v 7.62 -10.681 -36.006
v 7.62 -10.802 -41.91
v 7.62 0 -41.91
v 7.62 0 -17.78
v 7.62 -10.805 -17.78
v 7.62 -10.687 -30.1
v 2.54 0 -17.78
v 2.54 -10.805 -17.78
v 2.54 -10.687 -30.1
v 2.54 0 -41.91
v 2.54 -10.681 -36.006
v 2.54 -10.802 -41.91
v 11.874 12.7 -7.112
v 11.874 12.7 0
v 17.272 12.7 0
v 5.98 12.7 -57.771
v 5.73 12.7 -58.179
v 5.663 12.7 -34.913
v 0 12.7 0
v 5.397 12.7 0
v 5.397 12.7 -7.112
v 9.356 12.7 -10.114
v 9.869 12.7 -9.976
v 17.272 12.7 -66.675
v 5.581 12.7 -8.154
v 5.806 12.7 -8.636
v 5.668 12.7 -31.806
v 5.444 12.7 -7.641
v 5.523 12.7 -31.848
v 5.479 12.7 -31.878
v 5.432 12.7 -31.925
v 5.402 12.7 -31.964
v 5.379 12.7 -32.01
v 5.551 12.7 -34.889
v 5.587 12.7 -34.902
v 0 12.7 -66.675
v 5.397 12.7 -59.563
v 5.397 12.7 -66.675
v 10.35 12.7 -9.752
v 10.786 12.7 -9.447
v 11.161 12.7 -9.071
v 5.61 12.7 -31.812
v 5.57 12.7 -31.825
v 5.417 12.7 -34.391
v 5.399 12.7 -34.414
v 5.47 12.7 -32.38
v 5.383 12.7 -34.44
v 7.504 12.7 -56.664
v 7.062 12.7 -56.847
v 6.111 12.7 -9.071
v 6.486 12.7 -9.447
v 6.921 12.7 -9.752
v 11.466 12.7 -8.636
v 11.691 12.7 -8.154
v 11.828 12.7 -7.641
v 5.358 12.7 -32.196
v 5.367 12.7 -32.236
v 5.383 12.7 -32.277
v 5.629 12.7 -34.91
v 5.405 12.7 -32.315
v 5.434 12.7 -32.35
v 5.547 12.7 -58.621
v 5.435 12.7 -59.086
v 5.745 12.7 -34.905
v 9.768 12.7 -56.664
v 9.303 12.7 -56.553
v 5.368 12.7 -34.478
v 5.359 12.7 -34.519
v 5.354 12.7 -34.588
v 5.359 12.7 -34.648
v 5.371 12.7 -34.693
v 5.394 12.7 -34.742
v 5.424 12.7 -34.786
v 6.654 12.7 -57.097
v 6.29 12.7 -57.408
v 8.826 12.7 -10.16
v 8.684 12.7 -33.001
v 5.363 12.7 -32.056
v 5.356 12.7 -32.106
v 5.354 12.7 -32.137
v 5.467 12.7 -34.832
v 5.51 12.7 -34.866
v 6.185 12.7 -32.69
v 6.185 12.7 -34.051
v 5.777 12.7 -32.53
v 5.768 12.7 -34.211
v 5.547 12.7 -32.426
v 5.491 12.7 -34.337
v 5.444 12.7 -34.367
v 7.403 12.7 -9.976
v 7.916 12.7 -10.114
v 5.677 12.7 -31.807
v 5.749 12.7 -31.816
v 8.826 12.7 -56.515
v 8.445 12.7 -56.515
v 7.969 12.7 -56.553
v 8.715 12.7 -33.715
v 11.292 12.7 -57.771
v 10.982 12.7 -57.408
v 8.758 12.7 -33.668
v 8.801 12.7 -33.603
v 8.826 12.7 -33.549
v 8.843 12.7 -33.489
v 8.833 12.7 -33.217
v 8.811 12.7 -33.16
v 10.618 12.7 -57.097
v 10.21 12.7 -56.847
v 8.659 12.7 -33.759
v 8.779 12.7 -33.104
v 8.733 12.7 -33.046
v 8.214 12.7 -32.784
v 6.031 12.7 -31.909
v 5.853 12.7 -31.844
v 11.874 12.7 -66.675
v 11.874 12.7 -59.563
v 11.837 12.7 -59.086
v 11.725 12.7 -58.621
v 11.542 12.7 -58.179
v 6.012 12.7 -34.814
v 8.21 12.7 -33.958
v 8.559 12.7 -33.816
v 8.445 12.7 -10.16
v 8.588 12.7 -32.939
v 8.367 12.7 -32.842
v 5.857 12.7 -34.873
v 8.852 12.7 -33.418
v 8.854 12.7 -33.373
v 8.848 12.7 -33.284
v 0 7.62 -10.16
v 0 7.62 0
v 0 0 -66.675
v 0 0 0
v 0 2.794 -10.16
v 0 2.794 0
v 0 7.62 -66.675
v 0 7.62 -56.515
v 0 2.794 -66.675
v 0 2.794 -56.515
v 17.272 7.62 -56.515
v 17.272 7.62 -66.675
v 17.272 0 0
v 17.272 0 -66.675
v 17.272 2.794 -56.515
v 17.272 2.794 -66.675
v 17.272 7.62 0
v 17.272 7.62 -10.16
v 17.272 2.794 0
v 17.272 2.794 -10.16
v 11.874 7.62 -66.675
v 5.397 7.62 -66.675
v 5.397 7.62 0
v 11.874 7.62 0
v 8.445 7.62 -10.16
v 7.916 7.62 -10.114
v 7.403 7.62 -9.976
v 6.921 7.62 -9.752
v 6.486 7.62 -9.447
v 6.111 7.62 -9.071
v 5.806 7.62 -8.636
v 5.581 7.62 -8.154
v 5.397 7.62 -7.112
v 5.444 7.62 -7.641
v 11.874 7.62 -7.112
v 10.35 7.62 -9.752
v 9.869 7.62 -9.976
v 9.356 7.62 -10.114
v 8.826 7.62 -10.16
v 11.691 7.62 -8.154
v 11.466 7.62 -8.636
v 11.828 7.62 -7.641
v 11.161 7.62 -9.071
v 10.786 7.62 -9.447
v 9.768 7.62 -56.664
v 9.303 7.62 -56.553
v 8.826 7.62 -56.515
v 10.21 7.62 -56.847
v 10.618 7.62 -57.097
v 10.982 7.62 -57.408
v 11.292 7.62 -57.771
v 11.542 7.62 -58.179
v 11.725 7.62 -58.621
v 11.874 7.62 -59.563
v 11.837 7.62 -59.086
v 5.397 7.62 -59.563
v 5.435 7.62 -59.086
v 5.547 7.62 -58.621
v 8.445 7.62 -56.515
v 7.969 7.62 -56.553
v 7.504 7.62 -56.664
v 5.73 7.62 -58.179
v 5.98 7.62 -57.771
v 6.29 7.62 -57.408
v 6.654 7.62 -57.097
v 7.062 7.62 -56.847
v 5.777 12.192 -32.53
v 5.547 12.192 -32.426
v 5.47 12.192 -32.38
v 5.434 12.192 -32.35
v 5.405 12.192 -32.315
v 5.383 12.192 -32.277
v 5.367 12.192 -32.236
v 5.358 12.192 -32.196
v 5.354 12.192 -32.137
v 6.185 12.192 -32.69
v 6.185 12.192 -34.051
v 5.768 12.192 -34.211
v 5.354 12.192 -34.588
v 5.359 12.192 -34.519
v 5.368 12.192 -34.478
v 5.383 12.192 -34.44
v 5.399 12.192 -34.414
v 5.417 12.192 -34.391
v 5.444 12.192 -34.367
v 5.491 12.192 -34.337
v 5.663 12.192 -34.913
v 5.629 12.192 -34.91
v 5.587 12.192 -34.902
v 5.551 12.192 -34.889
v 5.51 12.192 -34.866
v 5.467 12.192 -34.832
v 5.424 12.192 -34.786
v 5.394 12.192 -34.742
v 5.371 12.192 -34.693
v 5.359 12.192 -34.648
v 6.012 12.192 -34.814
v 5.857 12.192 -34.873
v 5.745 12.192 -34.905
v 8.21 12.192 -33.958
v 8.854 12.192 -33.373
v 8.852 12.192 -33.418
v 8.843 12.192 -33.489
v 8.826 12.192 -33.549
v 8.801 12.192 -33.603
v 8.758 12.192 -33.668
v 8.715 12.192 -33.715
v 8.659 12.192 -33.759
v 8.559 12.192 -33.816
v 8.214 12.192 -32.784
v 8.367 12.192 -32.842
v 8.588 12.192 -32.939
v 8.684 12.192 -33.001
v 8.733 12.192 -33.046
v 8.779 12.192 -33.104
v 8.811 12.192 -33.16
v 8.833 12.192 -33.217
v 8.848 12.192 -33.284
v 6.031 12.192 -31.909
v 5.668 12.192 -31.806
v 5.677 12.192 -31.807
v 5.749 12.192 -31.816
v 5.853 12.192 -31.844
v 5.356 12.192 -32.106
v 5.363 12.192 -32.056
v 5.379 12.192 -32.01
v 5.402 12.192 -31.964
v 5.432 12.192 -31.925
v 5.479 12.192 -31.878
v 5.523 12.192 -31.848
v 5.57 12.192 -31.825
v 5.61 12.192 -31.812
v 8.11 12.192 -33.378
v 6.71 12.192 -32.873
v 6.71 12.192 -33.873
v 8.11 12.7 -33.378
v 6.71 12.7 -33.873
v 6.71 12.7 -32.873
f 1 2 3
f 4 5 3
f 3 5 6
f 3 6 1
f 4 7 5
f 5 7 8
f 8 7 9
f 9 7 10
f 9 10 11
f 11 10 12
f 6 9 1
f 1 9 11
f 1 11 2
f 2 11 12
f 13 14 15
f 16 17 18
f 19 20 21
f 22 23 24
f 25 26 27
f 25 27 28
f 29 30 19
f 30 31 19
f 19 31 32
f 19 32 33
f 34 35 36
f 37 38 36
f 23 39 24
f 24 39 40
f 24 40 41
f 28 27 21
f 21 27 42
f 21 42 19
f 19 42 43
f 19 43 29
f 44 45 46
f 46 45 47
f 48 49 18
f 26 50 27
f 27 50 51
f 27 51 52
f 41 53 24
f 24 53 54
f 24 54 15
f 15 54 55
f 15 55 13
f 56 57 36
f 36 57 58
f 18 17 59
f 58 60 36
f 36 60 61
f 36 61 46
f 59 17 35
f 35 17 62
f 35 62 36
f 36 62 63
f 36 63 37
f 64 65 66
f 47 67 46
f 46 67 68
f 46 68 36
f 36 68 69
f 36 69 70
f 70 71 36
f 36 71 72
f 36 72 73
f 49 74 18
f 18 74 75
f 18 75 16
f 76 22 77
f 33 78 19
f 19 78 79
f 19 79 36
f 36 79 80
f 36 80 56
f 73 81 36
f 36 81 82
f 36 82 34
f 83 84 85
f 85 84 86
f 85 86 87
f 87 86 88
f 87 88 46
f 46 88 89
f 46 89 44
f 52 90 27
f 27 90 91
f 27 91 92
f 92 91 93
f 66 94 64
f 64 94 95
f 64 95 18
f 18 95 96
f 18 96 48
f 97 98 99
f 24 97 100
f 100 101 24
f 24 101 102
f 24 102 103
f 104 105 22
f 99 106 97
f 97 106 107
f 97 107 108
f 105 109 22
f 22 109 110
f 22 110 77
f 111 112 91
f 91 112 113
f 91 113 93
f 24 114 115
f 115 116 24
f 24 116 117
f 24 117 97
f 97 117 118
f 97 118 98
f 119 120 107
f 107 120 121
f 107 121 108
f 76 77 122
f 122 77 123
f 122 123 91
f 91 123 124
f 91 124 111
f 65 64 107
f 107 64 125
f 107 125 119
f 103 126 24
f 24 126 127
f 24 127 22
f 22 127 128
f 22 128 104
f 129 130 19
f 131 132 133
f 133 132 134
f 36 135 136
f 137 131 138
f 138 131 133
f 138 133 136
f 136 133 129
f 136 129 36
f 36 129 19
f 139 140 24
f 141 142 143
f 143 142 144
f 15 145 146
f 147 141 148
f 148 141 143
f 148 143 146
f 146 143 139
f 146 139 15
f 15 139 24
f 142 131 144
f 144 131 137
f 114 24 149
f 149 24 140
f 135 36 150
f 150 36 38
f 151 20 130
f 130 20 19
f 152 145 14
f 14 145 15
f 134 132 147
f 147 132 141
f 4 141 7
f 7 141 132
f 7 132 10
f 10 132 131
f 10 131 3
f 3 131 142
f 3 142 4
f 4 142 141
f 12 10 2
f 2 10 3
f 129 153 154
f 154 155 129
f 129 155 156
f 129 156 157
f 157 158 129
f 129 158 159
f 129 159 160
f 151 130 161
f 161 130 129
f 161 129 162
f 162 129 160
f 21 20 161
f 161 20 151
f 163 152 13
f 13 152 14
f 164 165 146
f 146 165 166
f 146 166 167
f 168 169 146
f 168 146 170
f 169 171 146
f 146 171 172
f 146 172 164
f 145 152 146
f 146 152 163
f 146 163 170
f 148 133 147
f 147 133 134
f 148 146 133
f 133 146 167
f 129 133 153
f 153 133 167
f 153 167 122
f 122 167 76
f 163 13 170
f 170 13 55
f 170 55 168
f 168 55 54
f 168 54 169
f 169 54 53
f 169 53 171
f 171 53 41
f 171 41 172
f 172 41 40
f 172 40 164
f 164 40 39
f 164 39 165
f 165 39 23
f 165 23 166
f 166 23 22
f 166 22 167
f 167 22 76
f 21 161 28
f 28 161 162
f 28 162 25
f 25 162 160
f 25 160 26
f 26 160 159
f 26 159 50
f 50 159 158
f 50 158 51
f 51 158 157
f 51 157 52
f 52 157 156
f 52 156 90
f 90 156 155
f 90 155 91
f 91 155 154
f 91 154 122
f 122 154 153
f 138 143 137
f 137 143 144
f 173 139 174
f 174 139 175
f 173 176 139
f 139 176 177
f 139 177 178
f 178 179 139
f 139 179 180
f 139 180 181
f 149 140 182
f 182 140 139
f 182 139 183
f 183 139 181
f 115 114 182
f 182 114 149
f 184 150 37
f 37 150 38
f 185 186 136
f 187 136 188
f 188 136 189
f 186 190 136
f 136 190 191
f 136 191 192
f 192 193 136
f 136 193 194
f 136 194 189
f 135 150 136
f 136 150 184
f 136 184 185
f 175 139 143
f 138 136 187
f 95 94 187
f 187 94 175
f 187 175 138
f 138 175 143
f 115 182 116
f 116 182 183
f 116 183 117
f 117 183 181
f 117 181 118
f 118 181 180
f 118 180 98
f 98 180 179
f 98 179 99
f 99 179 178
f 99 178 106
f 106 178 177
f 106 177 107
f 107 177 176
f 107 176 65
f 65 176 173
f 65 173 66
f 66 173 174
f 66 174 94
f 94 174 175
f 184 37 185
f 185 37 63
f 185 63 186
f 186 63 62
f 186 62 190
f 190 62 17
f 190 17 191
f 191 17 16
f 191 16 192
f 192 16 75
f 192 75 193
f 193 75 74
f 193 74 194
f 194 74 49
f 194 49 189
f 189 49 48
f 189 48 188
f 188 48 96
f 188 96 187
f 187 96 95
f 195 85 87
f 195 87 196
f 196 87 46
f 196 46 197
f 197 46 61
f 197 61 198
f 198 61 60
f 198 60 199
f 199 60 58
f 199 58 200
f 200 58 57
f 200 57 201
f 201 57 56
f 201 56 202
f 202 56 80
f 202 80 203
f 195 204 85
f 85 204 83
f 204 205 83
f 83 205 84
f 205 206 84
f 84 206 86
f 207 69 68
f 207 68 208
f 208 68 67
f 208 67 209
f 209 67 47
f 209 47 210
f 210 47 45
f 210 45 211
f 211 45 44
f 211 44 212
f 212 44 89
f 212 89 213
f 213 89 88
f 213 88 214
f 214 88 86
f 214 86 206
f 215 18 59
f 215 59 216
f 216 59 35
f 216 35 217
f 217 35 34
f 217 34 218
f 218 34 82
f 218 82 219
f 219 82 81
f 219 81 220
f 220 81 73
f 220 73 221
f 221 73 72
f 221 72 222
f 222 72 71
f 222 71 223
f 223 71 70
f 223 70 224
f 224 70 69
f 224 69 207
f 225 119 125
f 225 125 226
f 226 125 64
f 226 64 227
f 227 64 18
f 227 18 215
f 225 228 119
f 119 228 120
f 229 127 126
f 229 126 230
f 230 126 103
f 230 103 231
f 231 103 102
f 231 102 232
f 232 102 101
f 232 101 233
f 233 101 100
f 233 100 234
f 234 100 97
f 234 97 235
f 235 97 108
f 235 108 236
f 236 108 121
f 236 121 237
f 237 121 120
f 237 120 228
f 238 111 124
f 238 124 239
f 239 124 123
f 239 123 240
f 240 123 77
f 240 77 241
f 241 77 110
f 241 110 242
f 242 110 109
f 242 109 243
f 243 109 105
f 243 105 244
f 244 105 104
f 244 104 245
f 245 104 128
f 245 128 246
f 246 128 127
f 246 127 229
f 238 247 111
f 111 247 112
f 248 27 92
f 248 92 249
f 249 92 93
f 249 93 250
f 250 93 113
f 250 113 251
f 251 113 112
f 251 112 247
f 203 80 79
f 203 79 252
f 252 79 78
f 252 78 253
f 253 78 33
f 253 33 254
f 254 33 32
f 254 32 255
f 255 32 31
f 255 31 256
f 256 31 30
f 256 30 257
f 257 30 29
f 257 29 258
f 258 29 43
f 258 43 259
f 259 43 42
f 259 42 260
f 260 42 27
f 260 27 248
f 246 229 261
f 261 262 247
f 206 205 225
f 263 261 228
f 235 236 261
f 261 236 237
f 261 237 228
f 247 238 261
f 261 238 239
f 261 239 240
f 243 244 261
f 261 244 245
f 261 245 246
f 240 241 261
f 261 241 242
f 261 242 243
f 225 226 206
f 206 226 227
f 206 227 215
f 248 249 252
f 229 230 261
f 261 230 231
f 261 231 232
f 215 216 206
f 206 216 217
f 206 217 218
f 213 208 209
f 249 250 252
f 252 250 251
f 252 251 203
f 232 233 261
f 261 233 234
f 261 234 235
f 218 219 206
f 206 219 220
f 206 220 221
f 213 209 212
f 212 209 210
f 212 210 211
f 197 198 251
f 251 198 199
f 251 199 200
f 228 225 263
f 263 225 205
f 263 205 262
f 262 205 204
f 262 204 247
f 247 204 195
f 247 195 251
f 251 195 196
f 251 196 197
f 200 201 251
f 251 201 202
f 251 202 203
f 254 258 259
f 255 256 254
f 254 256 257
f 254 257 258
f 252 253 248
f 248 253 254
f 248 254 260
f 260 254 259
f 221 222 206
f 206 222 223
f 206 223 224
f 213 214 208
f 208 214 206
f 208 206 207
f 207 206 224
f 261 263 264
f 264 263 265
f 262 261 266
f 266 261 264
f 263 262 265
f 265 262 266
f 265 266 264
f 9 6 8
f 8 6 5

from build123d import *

# Parameters (mm, degrees)
SKETCH2_W            = 17.272
SKETCH2_H            = 66.675
BOSS_EXTRUDE1_DEPTH  = 12.7
SKETCH3_W            = 5.08
SKETCH3_H            = 6.35
SKETCH3_H_2          = 1.905
SKETCH3_H_3          = 1.27
BOSS_EXTRUDE2_DEPTH  = 12.7
CUT_EXTRUDE1_DEPTH   = 10.16
FILLET2_R            = 3.048
FILLET2_OF_MIRROR1_R = 3.048
CUT_EXTRUDE4_DEPTH   = 70.454139178
CUT_EXTRUDE5_DEPTH   = 0.508
CUT_EXTRUDE6_DEPTH   = 70.454139314


with BuildPart() as part:
    # Sketch2 → Boss-Extrude1 (new body)
    with BuildSketch(Plane(origin=(0, 0, 0), x_dir=(1, 0, 0), z_dir=(0, 1, 0))):
        with Locations((8.636, 33.3375)):
            Rectangle(SKETCH2_W, SKETCH2_H)
    extrude(amount=BOSS_EXTRUDE1_DEPTH)

    # Sketch3 → Boss-Extrude2 (add)
    with BuildSketch(Plane.XZ):
        with Locations((5.08, -29.21)):
            Rectangle(SKETCH3_W, SKETCH3_H)
        with Locations((5.08, -20.955)):
            Rectangle(SKETCH3_W, SKETCH3_H)
        with Locations((5.08, -25.0825)):
            Rectangle(SKETCH3_W, SKETCH3_H_2)
        with Locations((5.08, -33.3375)):
            Rectangle(SKETCH3_W, SKETCH3_H_2)
        with Locations((5.08, -37.465)):
            Rectangle(SKETCH3_W, SKETCH3_H)
        with Locations((5.08, -41.275)):
            Rectangle(SKETCH3_W, SKETCH3_H_3)
    extrude(amount=BOSS_EXTRUDE2_DEPTH)

    # Sketch4 → Cut-Extrude1 (cut)
    with BuildSketch(Plane.XY):
        Polygon((0, 7.62), (5.3975, 7.62), (5.3975, 12.7), (11.8745, 12.7), (11.8745, 7.62), (17.272, 7.62), (17.272, 2.794), (0, 2.794), align=None)
    cut_extrude1 = extrude(amount=-CUT_EXTRUDE1_DEPTH, mode=Mode.SUBTRACT)

    # Fillet2
    fillet2_edges = [part.edges().sort_by_distance(p)[0] for p in [
        (5.3975, 10.16, -10.16),
        (11.8745, 10.16, -10.16),
    ]]
    fillet(fillet2_edges, radius=FILLET2_R)

    # Mirror1: Cut-Extrude1 across plane
    add(cut_extrude1.mirror(Plane.XY.offset(-33.3375)), mode=Mode.SUBTRACT)

    # Fillet2 of Mirror1
    fillet2_of_mirror1_edges = [part.edges().sort_by_distance(p)[0] for p in [
        (5.3975, 10.16, -56.515),
        (11.8745, 10.16, -56.515),
    ]]
    fillet(fillet2_of_mirror1_edges, radius=FILLET2_OF_MIRROR1_R)

    # Sketch5 → Cut-Extrude4 (cut, through all)
    with BuildSketch(Plane.ZY.offset(-2.54)):
        with BuildLine():
            Line((-66.675, -12.7), (0, -12.7))
            ThreePointArc((0, -12.7), (-33.3375, -10.668), (-66.675, -12.7))
        make_face()
    extrude(amount=-CUT_EXTRUDE4_DEPTH, mode=Mode.SUBTRACT)

    # Sketch6 → Cut-Extrude5 (cut)
    with BuildSketch(Plane(origin=(0, 12.7, 0), x_dir=(1, 0, 0), z_dir=(0, 1, 0))):
        with BuildLine():
            Line((5.776894531, 32.530175781), (6.185, 32.690136719))
            Line((6.185, 32.690136719), (6.185, 34.051171875))
            Line((6.185, 34.051171875), (5.768007812, 34.211132812))
            add(Edge.make_bspline(
                [(5.768007812, 34.211132812), (5.730494518, 34.225820978), (5.661738716, 34.25274201), (5.569524922, 34.294468396), (5.496856289, 34.332290336), (5.44041907, 34.367362499), (5.398808713, 34.408271263), (5.372150366, 34.459568119), (5.356449781, 34.520790431), (5.354690345, 34.564901212), (5.35375, 34.588476562)],
                knots=[0, 0, 0, 0, 1.589179946, 2.912709847, 3.990397165, 4.820646782, 5.526248733, 6.26234321, 7.071295771, 8, 8, 8, 8], degree=3))
            add(Edge.make_bspline(
                [(5.35375, 34.588476562), (5.354923711, 34.609350692), (5.35723832, 34.650515396), (5.376105038, 34.709983847), (5.405904793, 34.765474392), (5.446909477, 34.815335315), (5.494806824, 34.85769508), (5.547709989, 34.88945387), (5.604426015, 34.909062179), (5.643671152, 34.911349233), (5.663417969, 34.9125)],
                knots=[0, 0, 0, 0, 1.012851797, 1.997388367, 3.003373292, 4.058581268, 5.118255936, 6.09654221, 7.042244815, 8, 8, 8, 8], degree=3))
            add(Edge.make_bspline(
                [(5.663417969, 34.9125), (5.687013914, 34.911555345), (5.735537805, 34.90961271), (5.796155547, 34.892709958), (5.849374825, 34.875661052), (5.897051464, 34.858225338), (5.952411749, 34.838064341), (5.991361751, 34.822388839), (6.012050781, 34.8140625)],
                knots=[0, 0, 0, 0, 1.162954171, 2.391557502, 3.08930458, 3.926034863, 4.898374222, 6, 6, 6, 6], degree=3))
            Line((6.012050781, 34.8140625), (8.209804687, 33.957519531))
            add(Edge.make_bspline(
                [(8.209804687, 33.957519531), (8.226428771, 33.951113113), (8.261020453, 33.937782526), (8.315677882, 33.917334175), (8.374470369, 33.893962658), (8.436973219, 33.870121703), (8.499246191, 33.845277035), (8.557274142, 33.8177815), (8.609899907, 33.789999082), (8.657389954, 33.761144082), (8.699684296, 33.729310109), (8.738099697, 33.693741829), (8.770436623, 33.651946673), (8.800403384, 33.607060747), (8.824677671, 33.556645473), (8.841672776, 33.500421669), (8.85196969, 33.4385942), (8.85314235, 33.395419307), (8.85375, 33.373046875)],
                knots=[0, 0, 0, 0, 0.906379869, 1.886010981, 2.968854674, 4.124928175, 5.289572165, 6.378603586, 7.389892814, 8.31643566, 9.202117826, 10.079567999, 10.970318812, 11.883493671, 12.821997982, 13.804710887, 14.862441745, 16, 16, 16, 16], degree=3))
            add(Edge.make_bspline(
                [(8.85375, 33.373046875), (8.853143023, 33.350446171), (8.85197131, 33.306817548), (8.841657146, 33.244325061), (8.824718356, 33.187386785), (8.800407201, 33.136711098), (8.771490665, 33.091190553), (8.738270432, 33.050541152), (8.70140971, 33.013950972), (8.646096874, 32.972422303), (8.570937447, 32.928580779), (8.490808779, 32.890179852), (8.419869551, 32.862917705), (8.358755001, 32.838536673), (8.289151734, 32.812137701), (8.23988638, 32.793577043), (8.21390625, 32.783789062)],
                knots=[0, 0, 0, 0, 1.00520059, 1.940449142, 2.809766755, 3.639873923, 4.433178694, 5.204465738, 5.971742598, 6.738416121, 8.27578173, 9.83615209, 10.687299641, 11.65709467, 12.764466697, 14, 14, 14, 14], degree=3))
            Line((8.21390625, 32.783789062), (6.030507812, 31.908789062))
            add(Edge.make_bspline(
                [(6.030507812, 31.908789062), (6.010470664, 31.900780275), (5.971885996, 31.885358101), (5.916134993, 31.863706725), (5.864078369, 31.847042494), (5.816554299, 31.832321275), (5.773278478, 31.820653382), (5.734277438, 31.812380787), (5.699571652, 31.807024394), (5.67778988, 31.806498136), (5.667519531, 31.80625)],
                knots=[0, 0, 0, 0, 1.366342978, 2.631107437, 3.785388659, 4.825962469, 5.781334485, 6.621722106, 7.350126631, 8, 8, 8, 8], degree=3))
            add(Edge.make_bspline(
                [(5.667519531, 31.80625), (5.648226041, 31.807426445), (5.609433355, 31.809791878), (5.553209022, 31.829532937), (5.499526082, 31.860395105), (5.450055079, 31.902282304), (5.40703675, 31.952295628), (5.376604178, 32.009857625), (5.357023182, 32.071819825), (5.354854098, 32.115086145), (5.35375, 32.137109375)],
                knots=[0, 0, 0, 0, 0.918866393, 1.847529694, 2.812122199, 3.862154056, 4.927509125, 5.939679135, 6.951264583, 8, 8, 8, 8], degree=3))
            add(Edge.make_bspline(
                [(5.35375, 32.137109375), (5.354800528, 32.162129105), (5.356770672, 32.209050699), (5.378297511, 32.273936), (5.412022157, 32.327652709), (5.44901113, 32.36544648), (5.485613066, 32.391416915), (5.519260812, 32.411831411), (5.559015285, 32.432959548), (5.618650091, 32.460955232), (5.691860724, 32.493644584), (5.749980868, 32.518613458), (5.776894531, 32.530175781)],
                knots=[0, 0, 0, 0, 1.202442774, 2.255041588, 3.251816137, 4.238368336, 4.781120761, 5.412282472, 6.134737701, 6.950402798, 8.587824681, 10, 10, 10, 10], degree=3))
        make_face()
        Polygon((6.71, 33.8734375), (6.71, 32.87265625), (8.11, 33.377832031), align=None, mode=Mode.SUBTRACT)
    extrude(amount=-CUT_EXTRUDE5_DEPTH, mode=Mode.SUBTRACT)

    # Sketch7 → Cut-Extrude6 (cut, through all)
    with BuildSketch(Plane.ZY.offset(-2.54)):
        with BuildLine():
            Line((-17.78, -11.109241116), (-17.78, -10.805360899))
            Line((-17.78, -10.805360899), (-30.099808499, -10.687095595))
            ThreePointArc((-30.099808499, -10.687095595), (-23.93753417, -10.829000448), (-17.78, -11.109241116))
        make_face()
    extrude(amount=-CUT_EXTRUDE6_DEPTH, mode=Mode.SUBTRACT)


solid = part.part
